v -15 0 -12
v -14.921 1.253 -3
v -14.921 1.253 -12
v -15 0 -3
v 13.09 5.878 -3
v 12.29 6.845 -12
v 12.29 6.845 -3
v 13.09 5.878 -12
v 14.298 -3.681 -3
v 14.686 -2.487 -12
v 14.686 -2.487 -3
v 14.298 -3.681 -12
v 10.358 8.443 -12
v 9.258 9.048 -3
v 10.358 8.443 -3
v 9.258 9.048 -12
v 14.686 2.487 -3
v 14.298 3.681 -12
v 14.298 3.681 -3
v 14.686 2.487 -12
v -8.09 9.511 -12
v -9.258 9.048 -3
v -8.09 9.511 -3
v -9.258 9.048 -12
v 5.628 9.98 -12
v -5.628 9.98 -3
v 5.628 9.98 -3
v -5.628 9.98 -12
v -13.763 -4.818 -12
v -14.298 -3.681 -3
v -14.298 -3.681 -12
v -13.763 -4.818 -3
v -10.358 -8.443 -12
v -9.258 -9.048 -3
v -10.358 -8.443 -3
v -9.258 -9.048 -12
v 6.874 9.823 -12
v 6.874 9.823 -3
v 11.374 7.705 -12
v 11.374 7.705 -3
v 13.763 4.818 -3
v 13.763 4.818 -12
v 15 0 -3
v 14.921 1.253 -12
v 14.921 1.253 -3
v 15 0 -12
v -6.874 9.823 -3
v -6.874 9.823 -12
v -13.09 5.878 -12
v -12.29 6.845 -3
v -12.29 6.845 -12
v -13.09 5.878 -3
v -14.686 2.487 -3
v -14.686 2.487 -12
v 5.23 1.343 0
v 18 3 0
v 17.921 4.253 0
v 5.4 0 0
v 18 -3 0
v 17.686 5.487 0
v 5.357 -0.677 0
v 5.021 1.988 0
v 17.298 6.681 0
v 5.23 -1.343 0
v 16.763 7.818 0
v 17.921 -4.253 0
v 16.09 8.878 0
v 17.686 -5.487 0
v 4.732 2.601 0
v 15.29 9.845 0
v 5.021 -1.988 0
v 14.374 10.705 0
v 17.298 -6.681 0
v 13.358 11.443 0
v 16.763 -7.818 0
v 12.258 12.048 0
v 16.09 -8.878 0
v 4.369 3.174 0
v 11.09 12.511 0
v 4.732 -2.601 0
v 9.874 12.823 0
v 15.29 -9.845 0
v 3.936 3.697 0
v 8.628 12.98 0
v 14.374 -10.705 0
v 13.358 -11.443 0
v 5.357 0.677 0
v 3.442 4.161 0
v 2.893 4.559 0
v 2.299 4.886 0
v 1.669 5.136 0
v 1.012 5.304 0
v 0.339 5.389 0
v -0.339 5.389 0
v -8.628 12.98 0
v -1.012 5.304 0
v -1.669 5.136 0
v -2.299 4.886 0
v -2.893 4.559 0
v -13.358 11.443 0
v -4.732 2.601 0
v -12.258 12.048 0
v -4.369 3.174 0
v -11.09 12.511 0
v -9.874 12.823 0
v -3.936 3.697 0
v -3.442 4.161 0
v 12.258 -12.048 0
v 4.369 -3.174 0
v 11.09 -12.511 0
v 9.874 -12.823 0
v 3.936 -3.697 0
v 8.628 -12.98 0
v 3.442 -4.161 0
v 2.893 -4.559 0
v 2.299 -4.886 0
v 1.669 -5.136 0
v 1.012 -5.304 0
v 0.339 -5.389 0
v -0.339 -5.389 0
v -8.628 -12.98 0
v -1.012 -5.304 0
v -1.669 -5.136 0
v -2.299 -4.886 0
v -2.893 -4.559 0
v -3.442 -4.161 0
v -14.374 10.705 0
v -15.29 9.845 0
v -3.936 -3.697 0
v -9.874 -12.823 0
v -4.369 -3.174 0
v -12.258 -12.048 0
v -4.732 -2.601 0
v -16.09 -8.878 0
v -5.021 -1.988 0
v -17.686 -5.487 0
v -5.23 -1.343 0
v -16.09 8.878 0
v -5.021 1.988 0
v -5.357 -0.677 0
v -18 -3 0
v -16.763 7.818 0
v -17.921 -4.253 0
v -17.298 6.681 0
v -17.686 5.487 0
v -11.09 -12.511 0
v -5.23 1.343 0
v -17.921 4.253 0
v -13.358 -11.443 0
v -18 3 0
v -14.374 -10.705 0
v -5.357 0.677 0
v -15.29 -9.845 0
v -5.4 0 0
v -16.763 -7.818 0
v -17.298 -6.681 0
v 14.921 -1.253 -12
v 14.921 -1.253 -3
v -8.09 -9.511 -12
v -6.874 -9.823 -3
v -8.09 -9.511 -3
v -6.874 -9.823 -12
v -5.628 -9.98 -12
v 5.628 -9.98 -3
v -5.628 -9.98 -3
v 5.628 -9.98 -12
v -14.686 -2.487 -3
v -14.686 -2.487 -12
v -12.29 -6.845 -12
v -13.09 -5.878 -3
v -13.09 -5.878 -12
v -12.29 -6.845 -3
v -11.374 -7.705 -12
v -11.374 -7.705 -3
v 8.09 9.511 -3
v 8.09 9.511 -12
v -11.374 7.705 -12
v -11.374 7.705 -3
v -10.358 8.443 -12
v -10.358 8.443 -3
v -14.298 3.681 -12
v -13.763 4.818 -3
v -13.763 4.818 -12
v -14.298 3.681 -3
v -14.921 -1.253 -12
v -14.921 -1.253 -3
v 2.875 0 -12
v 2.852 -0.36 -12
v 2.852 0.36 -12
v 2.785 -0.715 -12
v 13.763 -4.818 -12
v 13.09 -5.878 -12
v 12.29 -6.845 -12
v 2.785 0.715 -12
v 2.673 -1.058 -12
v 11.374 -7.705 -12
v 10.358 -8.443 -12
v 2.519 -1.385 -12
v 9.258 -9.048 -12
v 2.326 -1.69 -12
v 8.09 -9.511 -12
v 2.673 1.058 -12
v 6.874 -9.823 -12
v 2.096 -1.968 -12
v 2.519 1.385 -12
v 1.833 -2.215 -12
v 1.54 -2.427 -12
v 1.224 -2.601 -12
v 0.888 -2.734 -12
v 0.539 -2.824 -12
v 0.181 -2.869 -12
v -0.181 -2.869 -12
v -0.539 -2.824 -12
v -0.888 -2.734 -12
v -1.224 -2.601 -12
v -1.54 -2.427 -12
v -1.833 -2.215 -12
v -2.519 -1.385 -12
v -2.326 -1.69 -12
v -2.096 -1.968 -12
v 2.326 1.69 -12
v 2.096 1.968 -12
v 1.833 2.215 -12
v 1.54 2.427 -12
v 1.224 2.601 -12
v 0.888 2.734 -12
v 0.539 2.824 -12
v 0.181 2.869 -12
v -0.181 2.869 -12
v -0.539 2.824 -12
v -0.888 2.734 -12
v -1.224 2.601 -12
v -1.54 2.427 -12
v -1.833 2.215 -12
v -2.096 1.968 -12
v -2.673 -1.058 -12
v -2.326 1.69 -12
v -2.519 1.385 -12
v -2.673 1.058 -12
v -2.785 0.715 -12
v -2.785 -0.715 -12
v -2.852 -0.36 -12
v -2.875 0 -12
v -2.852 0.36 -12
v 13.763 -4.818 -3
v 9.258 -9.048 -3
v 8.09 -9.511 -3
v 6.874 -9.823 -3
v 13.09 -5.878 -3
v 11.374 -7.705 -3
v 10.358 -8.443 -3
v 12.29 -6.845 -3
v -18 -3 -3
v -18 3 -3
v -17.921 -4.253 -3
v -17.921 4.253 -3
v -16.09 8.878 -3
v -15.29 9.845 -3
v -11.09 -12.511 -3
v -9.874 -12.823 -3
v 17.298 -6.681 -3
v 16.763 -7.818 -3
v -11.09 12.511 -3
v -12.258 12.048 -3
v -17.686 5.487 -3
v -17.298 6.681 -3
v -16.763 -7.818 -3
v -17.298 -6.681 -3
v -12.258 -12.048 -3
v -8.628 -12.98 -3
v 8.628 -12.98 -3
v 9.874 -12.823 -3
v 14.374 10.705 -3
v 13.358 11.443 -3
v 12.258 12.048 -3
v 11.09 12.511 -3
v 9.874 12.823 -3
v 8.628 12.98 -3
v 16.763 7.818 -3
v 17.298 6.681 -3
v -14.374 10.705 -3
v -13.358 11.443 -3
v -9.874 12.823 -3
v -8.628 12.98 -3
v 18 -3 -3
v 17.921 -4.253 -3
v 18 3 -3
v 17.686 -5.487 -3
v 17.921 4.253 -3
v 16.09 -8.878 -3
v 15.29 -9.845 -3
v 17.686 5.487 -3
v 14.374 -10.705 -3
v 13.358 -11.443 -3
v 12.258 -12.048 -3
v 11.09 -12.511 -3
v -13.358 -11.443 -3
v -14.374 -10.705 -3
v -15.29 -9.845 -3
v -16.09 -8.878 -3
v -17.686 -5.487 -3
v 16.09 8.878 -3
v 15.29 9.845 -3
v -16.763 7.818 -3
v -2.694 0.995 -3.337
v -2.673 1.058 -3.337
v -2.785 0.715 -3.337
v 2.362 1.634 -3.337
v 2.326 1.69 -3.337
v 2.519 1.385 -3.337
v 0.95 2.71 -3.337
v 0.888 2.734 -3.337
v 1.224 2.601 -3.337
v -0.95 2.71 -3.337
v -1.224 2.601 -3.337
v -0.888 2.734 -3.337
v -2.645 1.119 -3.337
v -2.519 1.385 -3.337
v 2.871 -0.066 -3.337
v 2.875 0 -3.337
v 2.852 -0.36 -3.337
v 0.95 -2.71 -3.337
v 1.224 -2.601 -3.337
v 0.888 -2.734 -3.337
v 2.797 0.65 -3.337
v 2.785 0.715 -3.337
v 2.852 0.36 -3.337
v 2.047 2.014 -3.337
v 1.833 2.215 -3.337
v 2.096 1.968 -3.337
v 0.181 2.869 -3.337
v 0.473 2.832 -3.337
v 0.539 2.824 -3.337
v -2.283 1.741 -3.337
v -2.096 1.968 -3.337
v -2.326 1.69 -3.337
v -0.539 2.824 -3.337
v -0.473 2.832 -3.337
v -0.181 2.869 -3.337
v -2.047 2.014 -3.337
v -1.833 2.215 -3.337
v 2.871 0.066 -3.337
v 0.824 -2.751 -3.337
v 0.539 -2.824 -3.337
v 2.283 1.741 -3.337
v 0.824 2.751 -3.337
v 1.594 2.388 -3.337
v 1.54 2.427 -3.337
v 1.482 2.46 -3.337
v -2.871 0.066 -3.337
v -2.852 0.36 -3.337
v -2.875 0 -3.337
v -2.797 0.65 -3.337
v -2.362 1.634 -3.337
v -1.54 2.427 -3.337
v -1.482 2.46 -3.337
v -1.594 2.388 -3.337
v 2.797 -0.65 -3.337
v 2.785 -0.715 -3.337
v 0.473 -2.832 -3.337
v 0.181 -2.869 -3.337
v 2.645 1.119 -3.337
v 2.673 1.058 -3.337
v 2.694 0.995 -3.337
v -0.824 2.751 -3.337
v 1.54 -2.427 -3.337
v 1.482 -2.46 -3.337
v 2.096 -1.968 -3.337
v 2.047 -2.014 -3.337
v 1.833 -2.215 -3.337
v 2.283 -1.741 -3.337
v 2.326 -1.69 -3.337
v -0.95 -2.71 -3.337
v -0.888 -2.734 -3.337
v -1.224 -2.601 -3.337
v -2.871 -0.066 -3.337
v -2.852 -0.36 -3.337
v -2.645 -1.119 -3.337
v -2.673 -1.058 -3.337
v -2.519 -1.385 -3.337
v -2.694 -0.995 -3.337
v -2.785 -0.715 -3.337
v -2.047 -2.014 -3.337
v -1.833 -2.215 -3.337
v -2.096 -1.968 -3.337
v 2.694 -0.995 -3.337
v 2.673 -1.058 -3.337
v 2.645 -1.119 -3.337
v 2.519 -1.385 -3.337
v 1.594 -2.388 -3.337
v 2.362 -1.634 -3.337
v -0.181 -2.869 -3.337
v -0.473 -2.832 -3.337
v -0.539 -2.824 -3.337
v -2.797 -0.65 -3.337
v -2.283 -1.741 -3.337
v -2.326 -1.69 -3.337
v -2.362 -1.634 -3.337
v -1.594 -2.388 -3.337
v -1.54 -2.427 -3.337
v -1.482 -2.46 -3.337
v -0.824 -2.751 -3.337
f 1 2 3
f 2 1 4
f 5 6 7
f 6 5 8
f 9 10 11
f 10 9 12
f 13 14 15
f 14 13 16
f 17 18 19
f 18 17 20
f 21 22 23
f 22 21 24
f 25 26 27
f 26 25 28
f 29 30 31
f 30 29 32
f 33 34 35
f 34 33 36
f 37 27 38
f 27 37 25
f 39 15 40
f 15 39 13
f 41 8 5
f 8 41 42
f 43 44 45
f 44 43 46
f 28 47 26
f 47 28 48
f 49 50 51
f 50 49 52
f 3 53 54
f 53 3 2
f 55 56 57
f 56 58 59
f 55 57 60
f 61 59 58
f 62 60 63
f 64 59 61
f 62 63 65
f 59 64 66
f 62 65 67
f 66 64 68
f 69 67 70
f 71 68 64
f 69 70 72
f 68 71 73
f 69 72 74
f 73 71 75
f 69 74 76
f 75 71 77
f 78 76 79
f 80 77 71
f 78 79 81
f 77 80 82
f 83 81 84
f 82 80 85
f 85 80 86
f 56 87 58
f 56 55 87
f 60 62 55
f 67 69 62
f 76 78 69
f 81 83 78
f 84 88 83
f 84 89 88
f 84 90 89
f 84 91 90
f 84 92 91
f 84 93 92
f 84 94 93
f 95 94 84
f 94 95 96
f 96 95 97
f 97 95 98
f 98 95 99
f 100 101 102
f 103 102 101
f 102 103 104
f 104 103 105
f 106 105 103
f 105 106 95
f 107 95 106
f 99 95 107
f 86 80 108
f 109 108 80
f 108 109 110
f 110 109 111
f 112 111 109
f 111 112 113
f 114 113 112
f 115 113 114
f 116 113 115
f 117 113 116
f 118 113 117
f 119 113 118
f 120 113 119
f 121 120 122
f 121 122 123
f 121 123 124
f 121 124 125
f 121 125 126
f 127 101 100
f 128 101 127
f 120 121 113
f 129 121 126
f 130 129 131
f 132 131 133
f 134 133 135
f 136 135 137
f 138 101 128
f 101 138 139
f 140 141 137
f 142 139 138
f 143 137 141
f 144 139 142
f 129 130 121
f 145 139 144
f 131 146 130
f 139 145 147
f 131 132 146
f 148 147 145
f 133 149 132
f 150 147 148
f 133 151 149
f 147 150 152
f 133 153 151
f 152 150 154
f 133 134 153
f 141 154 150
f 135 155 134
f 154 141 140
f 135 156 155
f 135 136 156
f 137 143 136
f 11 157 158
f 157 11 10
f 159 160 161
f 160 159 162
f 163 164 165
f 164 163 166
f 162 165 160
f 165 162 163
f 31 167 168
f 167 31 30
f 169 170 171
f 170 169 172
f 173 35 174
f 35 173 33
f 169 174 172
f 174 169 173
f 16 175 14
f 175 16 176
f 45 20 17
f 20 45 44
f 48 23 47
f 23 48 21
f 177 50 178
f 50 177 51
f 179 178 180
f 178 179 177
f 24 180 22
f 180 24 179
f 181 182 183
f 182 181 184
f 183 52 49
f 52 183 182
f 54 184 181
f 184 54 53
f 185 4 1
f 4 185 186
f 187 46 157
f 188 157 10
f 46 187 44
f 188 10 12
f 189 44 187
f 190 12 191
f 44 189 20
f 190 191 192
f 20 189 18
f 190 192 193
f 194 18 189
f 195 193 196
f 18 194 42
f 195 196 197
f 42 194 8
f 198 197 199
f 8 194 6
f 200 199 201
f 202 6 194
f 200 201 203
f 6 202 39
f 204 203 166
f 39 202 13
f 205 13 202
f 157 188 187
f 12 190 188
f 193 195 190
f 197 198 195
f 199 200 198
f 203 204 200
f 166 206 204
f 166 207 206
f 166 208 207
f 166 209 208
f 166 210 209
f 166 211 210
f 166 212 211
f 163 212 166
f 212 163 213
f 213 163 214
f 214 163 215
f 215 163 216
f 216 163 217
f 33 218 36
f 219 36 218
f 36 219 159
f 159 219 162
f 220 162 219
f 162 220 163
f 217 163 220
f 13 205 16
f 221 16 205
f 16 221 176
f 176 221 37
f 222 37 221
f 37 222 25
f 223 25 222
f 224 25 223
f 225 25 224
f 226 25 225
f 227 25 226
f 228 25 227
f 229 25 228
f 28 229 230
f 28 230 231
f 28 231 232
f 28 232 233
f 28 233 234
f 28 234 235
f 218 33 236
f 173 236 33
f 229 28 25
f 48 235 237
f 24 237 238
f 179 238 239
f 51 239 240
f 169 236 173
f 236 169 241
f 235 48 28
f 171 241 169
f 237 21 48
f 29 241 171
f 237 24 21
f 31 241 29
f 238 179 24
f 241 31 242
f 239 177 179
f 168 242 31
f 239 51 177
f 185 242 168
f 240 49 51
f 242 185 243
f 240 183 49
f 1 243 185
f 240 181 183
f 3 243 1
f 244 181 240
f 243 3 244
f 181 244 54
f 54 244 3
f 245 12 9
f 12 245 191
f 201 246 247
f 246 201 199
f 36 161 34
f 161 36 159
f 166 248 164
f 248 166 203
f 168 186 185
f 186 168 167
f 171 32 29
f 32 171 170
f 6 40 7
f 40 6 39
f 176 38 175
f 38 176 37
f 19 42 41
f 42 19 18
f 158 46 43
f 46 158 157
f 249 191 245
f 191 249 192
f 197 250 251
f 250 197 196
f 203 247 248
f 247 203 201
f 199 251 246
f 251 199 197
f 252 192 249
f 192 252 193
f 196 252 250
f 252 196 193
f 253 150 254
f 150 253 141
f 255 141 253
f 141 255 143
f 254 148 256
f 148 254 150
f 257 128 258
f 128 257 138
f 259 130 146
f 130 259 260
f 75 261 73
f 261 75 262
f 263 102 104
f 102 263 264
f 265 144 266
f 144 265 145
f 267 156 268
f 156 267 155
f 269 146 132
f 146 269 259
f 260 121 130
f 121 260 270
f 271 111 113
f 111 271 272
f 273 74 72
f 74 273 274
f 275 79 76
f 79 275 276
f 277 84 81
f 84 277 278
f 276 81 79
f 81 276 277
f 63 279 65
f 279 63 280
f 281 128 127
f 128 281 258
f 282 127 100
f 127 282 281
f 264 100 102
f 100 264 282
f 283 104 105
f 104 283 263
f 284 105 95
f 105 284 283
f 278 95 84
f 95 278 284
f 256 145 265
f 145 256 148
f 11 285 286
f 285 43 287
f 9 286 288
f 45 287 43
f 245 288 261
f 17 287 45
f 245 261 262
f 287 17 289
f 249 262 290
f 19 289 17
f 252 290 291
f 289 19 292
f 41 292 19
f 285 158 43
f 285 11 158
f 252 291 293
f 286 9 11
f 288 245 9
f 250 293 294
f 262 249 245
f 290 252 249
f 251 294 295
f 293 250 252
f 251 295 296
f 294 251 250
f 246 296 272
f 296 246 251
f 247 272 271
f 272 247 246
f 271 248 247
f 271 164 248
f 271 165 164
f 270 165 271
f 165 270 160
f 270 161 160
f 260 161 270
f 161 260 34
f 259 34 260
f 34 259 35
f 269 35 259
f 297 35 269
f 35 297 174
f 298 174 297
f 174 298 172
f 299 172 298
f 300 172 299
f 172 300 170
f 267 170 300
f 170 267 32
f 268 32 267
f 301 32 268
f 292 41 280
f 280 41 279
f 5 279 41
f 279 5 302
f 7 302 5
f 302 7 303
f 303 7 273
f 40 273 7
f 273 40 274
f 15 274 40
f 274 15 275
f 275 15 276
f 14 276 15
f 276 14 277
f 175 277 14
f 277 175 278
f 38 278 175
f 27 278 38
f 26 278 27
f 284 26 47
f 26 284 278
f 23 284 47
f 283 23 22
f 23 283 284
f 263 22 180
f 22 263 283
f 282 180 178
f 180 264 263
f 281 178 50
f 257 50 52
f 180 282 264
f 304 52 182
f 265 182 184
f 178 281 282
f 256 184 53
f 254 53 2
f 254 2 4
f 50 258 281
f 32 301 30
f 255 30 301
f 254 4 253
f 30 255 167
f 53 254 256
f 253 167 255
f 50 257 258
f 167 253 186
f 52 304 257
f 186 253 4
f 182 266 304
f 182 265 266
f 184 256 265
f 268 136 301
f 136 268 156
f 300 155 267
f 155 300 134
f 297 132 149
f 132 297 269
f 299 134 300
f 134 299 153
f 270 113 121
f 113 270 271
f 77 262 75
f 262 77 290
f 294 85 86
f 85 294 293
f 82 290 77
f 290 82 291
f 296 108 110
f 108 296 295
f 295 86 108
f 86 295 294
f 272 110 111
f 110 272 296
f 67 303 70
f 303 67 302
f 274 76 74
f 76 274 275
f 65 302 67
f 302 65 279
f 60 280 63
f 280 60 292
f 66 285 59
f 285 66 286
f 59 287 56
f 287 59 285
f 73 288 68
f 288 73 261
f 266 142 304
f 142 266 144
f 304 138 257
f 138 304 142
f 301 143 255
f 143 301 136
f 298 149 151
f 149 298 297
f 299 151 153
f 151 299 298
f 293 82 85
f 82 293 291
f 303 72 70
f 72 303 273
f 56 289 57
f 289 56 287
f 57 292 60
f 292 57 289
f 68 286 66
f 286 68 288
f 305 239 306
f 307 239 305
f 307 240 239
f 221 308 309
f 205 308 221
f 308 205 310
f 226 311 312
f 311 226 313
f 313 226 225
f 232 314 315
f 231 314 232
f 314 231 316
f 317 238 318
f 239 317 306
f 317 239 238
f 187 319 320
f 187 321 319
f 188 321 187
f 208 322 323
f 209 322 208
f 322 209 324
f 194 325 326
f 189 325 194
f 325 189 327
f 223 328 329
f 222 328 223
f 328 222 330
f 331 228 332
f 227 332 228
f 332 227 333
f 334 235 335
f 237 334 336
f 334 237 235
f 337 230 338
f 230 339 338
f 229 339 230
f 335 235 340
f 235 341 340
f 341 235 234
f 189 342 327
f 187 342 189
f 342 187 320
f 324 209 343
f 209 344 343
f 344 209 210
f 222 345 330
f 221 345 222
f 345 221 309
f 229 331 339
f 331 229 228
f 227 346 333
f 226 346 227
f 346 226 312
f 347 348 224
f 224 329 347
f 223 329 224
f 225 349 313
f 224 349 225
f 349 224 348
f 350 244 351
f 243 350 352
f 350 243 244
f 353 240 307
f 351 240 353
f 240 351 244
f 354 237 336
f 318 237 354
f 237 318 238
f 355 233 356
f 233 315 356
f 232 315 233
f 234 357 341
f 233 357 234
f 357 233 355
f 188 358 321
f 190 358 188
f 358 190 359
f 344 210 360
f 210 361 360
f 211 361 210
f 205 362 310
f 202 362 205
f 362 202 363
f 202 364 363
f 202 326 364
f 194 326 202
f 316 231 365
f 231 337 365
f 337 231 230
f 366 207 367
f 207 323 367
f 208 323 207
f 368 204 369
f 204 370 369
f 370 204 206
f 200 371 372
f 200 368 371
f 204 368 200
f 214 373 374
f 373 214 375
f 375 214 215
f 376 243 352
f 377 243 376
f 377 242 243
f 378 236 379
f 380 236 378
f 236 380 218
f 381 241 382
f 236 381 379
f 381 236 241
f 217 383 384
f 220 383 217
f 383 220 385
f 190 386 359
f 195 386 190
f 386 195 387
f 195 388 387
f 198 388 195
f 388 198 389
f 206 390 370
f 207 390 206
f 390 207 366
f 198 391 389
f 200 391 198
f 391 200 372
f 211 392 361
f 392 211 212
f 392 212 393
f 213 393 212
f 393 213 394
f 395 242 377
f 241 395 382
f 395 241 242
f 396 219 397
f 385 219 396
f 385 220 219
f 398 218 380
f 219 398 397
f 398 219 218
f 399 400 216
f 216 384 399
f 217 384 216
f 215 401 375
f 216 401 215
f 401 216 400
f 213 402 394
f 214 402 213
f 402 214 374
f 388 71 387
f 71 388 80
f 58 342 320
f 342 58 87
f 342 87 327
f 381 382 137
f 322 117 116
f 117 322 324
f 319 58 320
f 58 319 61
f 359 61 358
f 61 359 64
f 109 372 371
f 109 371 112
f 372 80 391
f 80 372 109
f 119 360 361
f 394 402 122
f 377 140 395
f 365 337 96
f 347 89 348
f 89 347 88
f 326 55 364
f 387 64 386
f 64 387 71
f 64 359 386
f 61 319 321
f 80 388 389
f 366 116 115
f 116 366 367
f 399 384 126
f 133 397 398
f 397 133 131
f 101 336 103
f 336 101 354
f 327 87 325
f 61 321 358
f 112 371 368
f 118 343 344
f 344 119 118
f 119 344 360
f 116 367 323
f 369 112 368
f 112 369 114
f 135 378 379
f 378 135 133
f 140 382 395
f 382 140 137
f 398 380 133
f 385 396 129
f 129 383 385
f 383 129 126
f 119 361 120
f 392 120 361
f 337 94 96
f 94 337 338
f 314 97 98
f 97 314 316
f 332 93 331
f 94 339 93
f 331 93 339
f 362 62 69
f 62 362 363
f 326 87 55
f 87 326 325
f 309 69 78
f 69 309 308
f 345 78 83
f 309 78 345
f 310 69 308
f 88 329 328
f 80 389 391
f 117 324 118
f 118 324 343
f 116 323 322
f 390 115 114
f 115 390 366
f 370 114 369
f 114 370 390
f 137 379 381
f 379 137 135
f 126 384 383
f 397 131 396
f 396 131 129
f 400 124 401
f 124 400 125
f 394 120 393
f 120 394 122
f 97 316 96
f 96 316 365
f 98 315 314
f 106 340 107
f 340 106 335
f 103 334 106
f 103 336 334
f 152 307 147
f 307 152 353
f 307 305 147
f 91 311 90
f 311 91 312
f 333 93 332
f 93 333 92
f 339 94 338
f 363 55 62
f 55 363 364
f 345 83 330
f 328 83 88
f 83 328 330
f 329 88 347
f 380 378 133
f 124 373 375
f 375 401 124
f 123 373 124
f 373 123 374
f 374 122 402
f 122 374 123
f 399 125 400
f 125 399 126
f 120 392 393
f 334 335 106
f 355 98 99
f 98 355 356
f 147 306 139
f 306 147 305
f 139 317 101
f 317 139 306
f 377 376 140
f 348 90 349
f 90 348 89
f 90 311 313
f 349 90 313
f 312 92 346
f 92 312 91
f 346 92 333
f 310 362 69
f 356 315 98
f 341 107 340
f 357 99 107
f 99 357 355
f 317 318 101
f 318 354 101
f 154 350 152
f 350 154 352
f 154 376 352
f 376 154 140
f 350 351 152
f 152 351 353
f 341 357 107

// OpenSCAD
$fn = 50;


difference() {
	union() {
		translate(v = [0, 0, -12]) {
			hull() {
				translate(v = [-5.0000000000, 0.0000000000, 0]) {
					cylinder(h = 12, r = 10.0000000000);
				}
				translate(v = [5.0000000000, 0.0000000000, 0]) {
					cylinder(h = 12, r = 10.0000000000);
				}
				translate(v = [-5.0000000000, -0.0000000000, 0]) {
					cylinder(h = 12, r = 10.0000000000);
				}
				translate(v = [5.0000000000, -0.0000000000, 0]) {
					cylinder(h = 12, r = 10.0000000000);
				}
			}
		}
		translate(v = [0, 0, -3]) {
			hull() {
				translate(v = [-8.0000000000, 3.0000000000, 0]) {
					cylinder(h = 3, r = 10.0000000000);
				}
				translate(v = [8.0000000000, 3.0000000000, 0]) {
					cylinder(h = 3, r = 10.0000000000);
				}
				translate(v = [-8.0000000000, -3.0000000000, 0]) {
					cylinder(h = 3, r = 10.0000000000);
				}
				translate(v = [8.0000000000, -3.0000000000, 0]) {
					cylinder(h = 3, r = 10.0000000000);
				}
			}
		}
	}
	union() {
		translate(v = [0, 0, 0]) {
			rotate(a = [0, 0, 0]) {
				difference() {
					union() {
						#translate(v = [0, 0, -12.0000000000]) {
							cylinder(h = 12, r = 2.6000000000);
						}
						#translate(v = [0, 0, -12.0000000000]) {
							cylinder(h = 12, r = 2.8750000000);
						}
						#translate(v = [0, 0, -3.7000000000]) {
							cylinder(h = 3.7000000000, r = 10.0000000000, r1 = 2.6000000000, r2 = 5.4000000000);
						}
						#translate(v = [0, 0, -12.0000000000]) {
							cylinder(h = 12, r = 2.6000000000);
						}
					}
					union();
				}
			}
		}
	}
}
